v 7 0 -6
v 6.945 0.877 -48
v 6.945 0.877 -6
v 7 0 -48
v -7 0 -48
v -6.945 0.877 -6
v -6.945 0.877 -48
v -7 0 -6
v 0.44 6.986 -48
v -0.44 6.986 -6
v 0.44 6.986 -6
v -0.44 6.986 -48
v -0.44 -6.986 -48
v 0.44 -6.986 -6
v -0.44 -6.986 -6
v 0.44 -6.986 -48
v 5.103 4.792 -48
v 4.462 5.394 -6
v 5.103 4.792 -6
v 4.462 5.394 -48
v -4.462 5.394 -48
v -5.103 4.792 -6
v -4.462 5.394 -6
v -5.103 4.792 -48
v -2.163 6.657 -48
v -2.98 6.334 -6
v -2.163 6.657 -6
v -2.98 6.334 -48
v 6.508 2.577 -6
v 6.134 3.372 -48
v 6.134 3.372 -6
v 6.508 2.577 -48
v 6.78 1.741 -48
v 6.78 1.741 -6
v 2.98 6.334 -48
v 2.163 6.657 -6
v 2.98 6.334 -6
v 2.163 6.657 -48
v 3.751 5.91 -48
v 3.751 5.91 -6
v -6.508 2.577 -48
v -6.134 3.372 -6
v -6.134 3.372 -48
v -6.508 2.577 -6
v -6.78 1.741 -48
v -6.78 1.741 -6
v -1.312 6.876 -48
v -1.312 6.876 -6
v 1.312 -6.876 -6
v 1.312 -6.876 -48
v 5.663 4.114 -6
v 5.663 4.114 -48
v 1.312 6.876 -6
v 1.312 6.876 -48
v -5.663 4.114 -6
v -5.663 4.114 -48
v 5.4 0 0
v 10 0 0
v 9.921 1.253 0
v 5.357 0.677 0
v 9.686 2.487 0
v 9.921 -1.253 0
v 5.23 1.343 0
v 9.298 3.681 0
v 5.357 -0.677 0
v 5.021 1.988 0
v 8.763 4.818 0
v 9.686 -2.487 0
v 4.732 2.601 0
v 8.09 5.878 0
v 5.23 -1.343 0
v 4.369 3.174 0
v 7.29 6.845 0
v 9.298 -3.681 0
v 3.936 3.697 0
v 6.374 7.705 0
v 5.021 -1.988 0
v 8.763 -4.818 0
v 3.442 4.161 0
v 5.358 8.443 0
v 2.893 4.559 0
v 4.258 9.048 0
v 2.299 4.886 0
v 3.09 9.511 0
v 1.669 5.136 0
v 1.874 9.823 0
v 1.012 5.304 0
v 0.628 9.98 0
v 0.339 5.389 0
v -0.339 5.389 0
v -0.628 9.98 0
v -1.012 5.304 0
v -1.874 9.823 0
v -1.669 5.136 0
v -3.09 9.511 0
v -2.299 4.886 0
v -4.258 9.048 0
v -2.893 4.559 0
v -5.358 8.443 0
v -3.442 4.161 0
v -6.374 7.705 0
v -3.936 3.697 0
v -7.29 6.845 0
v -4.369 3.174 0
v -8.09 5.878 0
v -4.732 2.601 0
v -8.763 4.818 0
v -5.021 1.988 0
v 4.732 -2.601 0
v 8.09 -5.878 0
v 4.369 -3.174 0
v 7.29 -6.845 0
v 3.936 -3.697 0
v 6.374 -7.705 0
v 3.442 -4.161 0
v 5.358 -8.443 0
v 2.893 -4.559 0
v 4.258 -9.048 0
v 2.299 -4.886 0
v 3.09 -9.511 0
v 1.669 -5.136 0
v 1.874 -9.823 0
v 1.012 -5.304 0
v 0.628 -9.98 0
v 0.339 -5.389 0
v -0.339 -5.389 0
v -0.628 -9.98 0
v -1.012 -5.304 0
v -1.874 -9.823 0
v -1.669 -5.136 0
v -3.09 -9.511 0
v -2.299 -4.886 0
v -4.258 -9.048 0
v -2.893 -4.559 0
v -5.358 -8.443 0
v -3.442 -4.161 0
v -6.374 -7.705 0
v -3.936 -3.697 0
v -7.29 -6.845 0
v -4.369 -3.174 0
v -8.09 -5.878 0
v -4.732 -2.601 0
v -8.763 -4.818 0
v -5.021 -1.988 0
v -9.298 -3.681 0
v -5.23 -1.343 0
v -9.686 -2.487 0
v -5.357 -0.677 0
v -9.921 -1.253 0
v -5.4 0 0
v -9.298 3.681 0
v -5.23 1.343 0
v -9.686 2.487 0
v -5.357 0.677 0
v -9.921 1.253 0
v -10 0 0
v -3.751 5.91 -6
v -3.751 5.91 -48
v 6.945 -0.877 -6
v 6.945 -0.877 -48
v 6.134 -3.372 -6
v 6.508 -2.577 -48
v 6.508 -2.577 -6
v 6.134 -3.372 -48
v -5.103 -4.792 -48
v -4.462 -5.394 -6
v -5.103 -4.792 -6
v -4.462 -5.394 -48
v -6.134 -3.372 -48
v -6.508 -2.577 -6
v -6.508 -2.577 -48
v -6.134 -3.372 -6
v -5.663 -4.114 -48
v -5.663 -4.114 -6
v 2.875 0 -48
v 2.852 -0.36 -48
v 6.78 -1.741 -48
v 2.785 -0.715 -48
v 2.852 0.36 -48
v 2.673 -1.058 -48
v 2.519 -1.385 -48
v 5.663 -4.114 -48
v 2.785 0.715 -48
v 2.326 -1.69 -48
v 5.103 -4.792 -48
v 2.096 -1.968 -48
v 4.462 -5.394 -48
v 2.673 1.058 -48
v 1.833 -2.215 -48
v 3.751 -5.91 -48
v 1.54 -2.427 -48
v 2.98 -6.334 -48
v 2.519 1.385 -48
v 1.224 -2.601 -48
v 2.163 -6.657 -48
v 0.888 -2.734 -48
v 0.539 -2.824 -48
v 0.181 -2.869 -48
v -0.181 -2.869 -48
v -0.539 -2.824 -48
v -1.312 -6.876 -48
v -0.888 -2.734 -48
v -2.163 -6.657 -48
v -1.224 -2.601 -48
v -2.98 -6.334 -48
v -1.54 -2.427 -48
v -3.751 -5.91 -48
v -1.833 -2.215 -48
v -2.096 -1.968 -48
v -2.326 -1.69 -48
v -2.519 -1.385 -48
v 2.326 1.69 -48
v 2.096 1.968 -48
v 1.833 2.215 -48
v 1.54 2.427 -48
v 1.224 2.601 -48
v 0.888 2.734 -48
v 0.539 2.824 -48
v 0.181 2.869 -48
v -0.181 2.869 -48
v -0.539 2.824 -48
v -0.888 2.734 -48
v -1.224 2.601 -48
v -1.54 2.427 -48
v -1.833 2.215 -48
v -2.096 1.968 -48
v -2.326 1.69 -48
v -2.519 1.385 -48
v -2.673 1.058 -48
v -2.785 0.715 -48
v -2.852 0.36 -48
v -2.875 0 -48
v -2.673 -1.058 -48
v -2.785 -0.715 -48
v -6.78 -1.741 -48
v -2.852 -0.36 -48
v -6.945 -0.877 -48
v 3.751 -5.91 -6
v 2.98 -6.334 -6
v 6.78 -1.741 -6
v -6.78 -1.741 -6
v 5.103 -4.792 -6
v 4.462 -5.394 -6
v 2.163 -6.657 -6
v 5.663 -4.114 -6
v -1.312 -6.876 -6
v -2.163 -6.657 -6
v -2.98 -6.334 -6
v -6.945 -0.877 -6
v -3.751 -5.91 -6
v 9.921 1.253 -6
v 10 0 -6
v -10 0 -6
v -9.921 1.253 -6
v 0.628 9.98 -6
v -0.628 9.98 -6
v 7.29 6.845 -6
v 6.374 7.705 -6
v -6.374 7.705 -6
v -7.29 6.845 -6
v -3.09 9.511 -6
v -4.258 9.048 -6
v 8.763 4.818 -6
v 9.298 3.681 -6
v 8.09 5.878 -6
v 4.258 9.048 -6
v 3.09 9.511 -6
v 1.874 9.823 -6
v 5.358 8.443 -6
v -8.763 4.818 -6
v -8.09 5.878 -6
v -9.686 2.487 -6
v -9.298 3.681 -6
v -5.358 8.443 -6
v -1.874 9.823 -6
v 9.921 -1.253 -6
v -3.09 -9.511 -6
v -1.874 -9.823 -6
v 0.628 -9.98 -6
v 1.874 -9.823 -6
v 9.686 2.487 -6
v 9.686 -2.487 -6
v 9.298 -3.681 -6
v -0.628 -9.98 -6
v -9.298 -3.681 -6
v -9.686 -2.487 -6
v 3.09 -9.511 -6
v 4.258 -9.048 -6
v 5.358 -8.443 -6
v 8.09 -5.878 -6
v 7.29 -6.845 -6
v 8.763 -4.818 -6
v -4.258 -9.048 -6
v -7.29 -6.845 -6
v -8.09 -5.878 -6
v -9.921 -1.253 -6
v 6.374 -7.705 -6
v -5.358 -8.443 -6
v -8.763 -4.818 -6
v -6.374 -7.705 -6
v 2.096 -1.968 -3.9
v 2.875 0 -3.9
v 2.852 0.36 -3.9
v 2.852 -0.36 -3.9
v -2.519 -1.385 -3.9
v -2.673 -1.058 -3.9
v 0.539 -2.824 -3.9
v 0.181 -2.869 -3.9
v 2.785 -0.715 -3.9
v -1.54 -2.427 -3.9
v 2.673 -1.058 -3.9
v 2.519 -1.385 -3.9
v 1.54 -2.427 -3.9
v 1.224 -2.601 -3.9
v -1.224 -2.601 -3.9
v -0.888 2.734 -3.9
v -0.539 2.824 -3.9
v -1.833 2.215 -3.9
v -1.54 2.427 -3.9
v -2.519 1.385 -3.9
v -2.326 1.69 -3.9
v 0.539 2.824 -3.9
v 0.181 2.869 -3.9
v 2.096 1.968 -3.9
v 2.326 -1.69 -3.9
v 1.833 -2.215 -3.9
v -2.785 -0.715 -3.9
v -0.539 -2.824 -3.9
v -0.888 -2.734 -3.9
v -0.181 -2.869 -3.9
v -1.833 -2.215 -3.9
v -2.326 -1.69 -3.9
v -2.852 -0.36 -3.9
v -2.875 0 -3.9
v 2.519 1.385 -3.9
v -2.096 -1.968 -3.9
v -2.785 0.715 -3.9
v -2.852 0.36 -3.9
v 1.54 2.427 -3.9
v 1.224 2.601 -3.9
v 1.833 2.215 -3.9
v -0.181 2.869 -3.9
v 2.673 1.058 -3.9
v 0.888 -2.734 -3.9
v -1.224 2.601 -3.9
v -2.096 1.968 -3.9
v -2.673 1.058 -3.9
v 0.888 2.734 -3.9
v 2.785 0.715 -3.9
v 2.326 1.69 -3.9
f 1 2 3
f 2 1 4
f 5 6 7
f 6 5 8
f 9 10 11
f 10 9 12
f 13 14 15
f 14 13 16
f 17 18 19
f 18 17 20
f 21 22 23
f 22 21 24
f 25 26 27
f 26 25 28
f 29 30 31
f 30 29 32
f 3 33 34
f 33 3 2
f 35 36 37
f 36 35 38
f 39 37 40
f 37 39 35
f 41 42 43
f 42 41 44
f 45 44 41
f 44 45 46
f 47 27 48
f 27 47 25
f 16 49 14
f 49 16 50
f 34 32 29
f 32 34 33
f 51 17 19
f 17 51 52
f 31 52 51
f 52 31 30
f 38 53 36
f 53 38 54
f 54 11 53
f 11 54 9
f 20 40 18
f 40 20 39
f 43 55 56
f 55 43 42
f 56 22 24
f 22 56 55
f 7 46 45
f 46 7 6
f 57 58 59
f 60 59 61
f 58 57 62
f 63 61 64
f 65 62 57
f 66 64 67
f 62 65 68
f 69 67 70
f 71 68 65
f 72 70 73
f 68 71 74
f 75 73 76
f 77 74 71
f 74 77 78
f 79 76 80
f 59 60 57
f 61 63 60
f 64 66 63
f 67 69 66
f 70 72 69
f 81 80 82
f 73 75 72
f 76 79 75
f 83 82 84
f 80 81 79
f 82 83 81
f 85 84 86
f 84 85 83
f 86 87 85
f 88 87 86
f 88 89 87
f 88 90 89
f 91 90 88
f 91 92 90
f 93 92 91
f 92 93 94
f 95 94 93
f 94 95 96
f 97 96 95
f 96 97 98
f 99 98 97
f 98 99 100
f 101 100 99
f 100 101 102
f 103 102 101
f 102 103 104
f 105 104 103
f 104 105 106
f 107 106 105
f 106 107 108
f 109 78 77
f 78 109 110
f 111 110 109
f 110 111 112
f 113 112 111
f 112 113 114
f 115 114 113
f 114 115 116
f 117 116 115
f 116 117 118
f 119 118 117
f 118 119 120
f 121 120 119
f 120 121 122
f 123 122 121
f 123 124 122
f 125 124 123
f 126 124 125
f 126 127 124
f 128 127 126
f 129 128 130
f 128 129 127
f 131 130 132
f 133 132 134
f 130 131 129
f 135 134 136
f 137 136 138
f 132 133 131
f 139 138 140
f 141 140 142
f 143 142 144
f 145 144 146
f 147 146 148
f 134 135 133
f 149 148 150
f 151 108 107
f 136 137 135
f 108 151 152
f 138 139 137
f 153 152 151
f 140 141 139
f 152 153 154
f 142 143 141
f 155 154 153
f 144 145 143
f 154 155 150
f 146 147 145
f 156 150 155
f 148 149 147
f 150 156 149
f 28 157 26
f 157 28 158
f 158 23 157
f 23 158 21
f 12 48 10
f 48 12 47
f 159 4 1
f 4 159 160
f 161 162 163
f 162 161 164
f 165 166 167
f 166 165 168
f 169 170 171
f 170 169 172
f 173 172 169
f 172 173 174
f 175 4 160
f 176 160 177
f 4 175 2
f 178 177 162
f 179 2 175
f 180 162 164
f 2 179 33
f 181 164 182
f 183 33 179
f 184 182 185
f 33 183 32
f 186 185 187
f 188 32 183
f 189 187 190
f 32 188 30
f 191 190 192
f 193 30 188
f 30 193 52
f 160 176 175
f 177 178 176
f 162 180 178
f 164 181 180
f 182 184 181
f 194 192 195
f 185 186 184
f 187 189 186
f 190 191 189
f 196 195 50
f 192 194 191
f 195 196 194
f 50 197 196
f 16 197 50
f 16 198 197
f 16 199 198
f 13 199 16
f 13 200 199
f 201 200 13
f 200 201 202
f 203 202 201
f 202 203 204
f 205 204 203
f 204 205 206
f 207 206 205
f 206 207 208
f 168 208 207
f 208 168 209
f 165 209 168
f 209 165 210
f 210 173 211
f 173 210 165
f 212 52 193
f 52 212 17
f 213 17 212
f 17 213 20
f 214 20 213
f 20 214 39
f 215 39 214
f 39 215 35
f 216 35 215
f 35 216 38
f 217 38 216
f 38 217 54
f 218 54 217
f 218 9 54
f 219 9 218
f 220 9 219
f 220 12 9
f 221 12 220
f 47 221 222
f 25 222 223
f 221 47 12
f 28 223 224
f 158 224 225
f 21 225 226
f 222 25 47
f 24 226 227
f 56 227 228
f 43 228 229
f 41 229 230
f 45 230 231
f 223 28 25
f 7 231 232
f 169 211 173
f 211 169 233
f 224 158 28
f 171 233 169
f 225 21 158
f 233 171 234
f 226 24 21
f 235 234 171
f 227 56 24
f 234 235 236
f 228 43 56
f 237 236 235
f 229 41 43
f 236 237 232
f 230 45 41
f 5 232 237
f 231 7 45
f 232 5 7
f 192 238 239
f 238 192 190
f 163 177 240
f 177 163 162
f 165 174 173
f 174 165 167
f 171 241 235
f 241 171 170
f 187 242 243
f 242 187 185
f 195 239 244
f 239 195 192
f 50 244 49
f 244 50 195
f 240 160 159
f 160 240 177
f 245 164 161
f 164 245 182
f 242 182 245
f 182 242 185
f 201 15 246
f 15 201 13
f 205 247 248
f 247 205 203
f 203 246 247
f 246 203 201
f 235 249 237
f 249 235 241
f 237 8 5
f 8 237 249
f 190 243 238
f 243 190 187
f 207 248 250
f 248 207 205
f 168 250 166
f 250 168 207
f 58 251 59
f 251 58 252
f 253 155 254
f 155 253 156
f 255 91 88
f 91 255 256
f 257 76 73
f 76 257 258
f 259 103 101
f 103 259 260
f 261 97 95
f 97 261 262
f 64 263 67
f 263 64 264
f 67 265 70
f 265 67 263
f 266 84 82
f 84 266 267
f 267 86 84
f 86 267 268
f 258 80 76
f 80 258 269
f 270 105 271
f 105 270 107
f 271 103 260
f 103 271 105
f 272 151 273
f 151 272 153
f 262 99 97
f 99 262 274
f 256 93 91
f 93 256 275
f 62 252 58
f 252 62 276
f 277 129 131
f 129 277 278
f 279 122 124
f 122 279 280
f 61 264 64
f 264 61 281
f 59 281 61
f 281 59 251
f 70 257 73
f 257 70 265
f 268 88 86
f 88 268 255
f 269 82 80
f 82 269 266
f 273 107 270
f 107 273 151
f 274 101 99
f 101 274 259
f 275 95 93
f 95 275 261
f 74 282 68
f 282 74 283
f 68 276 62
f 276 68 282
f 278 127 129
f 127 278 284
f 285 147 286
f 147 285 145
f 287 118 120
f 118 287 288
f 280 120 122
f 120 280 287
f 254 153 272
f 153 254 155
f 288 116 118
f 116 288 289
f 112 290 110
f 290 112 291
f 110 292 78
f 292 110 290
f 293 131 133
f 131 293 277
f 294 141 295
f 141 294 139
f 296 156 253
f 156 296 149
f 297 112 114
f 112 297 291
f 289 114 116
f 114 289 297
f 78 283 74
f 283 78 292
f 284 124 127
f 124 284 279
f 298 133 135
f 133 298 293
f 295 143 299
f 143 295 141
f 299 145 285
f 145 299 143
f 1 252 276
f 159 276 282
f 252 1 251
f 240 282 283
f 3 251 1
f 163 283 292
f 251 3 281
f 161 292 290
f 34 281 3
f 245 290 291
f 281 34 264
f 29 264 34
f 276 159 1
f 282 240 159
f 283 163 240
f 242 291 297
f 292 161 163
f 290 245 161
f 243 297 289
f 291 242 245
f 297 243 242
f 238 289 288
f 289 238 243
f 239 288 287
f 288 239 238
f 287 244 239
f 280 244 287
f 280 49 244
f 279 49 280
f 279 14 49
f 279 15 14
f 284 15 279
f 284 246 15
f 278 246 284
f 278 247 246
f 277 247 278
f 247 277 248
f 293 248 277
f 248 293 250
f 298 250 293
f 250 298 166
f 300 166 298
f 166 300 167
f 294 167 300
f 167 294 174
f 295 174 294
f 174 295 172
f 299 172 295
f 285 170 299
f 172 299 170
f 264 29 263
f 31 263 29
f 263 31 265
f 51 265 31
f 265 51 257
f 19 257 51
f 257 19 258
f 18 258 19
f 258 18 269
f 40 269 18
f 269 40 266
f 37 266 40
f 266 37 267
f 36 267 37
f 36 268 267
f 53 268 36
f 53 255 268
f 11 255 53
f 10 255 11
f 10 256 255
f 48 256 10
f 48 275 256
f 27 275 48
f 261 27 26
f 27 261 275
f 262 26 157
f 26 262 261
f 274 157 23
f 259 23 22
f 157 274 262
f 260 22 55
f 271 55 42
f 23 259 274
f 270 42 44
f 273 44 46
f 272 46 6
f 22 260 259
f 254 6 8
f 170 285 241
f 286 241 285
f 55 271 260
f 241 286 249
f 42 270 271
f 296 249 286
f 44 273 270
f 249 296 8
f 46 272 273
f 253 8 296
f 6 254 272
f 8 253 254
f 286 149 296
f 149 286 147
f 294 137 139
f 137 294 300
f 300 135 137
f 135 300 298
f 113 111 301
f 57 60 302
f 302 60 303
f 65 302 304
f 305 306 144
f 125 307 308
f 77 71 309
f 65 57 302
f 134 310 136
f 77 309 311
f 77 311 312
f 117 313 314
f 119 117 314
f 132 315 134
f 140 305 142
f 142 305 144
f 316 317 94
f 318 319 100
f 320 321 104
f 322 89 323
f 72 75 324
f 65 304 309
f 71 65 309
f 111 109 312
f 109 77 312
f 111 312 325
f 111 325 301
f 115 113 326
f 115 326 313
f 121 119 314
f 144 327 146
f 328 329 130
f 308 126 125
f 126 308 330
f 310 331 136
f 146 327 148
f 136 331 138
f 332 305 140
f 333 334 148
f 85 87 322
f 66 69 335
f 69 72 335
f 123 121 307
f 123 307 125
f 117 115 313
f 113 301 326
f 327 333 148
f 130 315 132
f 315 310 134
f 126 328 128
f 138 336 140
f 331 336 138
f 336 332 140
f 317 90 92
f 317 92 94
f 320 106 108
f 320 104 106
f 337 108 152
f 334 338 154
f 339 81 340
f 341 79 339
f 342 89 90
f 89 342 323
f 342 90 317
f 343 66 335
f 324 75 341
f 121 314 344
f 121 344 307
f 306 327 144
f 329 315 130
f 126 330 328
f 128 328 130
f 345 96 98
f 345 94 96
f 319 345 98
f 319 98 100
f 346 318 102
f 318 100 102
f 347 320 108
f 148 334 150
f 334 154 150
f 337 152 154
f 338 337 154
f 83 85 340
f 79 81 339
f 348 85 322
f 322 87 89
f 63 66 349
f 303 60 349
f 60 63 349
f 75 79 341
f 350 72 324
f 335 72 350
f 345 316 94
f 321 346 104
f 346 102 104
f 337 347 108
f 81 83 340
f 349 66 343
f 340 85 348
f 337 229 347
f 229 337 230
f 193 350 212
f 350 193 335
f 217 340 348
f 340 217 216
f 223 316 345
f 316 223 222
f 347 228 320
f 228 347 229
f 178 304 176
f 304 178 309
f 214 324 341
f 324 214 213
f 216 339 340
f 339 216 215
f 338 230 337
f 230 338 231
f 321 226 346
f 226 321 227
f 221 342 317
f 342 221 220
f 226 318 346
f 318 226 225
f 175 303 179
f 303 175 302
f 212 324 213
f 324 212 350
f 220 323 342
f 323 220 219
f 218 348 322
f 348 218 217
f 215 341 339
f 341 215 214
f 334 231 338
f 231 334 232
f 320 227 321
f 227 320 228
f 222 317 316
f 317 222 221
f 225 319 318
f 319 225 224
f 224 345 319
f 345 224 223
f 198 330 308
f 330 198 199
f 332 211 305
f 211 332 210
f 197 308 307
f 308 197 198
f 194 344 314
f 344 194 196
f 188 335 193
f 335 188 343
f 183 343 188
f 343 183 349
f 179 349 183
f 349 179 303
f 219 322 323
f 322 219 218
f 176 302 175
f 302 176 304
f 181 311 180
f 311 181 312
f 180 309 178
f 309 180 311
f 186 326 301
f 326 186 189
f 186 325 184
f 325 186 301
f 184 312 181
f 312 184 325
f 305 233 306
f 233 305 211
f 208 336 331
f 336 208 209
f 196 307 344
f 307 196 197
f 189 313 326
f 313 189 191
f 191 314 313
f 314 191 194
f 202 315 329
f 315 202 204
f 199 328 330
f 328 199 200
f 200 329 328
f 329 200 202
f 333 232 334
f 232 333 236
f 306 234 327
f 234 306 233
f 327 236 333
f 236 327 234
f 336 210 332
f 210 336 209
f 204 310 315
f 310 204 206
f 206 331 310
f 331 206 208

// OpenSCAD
$fn = 50;


difference() {
	union() {
		translate(v = [0, 0, -48.0000000000]) {
			cylinder(h = 48, r = 7.0000000000);
		}
		translate(v = [0, 0, -6.0000000000]) {
			cylinder(h = 6, r = 10.0000000000);
		}
	}
	union() {
		translate(v = [0, 0, 0]) {
			rotate(a = [0, 0, 0]) {
				difference() {
					union() {
						#translate(v = [0, 0, -48.0000000000]) {
							cylinder(h = 48, r = 2.6000000000);
						}
						#translate(v = [0, 0, -3.9000000000]) {
							cylinder(h = 3.9000000000, r = 7.0000000000, r1 = 2.8750000000, r2 = 5.4000000000);
						}
						#translate(v = [0, 0, -48.0000000000]) {
							cylinder(h = 48, r = 2.8750000000);
						}
						#translate(v = [0, 0, -48.0000000000]) {
							cylinder(h = 48, r = 2.6000000000);
						}
					}
					union();
				}
			}
		}
	}
}
